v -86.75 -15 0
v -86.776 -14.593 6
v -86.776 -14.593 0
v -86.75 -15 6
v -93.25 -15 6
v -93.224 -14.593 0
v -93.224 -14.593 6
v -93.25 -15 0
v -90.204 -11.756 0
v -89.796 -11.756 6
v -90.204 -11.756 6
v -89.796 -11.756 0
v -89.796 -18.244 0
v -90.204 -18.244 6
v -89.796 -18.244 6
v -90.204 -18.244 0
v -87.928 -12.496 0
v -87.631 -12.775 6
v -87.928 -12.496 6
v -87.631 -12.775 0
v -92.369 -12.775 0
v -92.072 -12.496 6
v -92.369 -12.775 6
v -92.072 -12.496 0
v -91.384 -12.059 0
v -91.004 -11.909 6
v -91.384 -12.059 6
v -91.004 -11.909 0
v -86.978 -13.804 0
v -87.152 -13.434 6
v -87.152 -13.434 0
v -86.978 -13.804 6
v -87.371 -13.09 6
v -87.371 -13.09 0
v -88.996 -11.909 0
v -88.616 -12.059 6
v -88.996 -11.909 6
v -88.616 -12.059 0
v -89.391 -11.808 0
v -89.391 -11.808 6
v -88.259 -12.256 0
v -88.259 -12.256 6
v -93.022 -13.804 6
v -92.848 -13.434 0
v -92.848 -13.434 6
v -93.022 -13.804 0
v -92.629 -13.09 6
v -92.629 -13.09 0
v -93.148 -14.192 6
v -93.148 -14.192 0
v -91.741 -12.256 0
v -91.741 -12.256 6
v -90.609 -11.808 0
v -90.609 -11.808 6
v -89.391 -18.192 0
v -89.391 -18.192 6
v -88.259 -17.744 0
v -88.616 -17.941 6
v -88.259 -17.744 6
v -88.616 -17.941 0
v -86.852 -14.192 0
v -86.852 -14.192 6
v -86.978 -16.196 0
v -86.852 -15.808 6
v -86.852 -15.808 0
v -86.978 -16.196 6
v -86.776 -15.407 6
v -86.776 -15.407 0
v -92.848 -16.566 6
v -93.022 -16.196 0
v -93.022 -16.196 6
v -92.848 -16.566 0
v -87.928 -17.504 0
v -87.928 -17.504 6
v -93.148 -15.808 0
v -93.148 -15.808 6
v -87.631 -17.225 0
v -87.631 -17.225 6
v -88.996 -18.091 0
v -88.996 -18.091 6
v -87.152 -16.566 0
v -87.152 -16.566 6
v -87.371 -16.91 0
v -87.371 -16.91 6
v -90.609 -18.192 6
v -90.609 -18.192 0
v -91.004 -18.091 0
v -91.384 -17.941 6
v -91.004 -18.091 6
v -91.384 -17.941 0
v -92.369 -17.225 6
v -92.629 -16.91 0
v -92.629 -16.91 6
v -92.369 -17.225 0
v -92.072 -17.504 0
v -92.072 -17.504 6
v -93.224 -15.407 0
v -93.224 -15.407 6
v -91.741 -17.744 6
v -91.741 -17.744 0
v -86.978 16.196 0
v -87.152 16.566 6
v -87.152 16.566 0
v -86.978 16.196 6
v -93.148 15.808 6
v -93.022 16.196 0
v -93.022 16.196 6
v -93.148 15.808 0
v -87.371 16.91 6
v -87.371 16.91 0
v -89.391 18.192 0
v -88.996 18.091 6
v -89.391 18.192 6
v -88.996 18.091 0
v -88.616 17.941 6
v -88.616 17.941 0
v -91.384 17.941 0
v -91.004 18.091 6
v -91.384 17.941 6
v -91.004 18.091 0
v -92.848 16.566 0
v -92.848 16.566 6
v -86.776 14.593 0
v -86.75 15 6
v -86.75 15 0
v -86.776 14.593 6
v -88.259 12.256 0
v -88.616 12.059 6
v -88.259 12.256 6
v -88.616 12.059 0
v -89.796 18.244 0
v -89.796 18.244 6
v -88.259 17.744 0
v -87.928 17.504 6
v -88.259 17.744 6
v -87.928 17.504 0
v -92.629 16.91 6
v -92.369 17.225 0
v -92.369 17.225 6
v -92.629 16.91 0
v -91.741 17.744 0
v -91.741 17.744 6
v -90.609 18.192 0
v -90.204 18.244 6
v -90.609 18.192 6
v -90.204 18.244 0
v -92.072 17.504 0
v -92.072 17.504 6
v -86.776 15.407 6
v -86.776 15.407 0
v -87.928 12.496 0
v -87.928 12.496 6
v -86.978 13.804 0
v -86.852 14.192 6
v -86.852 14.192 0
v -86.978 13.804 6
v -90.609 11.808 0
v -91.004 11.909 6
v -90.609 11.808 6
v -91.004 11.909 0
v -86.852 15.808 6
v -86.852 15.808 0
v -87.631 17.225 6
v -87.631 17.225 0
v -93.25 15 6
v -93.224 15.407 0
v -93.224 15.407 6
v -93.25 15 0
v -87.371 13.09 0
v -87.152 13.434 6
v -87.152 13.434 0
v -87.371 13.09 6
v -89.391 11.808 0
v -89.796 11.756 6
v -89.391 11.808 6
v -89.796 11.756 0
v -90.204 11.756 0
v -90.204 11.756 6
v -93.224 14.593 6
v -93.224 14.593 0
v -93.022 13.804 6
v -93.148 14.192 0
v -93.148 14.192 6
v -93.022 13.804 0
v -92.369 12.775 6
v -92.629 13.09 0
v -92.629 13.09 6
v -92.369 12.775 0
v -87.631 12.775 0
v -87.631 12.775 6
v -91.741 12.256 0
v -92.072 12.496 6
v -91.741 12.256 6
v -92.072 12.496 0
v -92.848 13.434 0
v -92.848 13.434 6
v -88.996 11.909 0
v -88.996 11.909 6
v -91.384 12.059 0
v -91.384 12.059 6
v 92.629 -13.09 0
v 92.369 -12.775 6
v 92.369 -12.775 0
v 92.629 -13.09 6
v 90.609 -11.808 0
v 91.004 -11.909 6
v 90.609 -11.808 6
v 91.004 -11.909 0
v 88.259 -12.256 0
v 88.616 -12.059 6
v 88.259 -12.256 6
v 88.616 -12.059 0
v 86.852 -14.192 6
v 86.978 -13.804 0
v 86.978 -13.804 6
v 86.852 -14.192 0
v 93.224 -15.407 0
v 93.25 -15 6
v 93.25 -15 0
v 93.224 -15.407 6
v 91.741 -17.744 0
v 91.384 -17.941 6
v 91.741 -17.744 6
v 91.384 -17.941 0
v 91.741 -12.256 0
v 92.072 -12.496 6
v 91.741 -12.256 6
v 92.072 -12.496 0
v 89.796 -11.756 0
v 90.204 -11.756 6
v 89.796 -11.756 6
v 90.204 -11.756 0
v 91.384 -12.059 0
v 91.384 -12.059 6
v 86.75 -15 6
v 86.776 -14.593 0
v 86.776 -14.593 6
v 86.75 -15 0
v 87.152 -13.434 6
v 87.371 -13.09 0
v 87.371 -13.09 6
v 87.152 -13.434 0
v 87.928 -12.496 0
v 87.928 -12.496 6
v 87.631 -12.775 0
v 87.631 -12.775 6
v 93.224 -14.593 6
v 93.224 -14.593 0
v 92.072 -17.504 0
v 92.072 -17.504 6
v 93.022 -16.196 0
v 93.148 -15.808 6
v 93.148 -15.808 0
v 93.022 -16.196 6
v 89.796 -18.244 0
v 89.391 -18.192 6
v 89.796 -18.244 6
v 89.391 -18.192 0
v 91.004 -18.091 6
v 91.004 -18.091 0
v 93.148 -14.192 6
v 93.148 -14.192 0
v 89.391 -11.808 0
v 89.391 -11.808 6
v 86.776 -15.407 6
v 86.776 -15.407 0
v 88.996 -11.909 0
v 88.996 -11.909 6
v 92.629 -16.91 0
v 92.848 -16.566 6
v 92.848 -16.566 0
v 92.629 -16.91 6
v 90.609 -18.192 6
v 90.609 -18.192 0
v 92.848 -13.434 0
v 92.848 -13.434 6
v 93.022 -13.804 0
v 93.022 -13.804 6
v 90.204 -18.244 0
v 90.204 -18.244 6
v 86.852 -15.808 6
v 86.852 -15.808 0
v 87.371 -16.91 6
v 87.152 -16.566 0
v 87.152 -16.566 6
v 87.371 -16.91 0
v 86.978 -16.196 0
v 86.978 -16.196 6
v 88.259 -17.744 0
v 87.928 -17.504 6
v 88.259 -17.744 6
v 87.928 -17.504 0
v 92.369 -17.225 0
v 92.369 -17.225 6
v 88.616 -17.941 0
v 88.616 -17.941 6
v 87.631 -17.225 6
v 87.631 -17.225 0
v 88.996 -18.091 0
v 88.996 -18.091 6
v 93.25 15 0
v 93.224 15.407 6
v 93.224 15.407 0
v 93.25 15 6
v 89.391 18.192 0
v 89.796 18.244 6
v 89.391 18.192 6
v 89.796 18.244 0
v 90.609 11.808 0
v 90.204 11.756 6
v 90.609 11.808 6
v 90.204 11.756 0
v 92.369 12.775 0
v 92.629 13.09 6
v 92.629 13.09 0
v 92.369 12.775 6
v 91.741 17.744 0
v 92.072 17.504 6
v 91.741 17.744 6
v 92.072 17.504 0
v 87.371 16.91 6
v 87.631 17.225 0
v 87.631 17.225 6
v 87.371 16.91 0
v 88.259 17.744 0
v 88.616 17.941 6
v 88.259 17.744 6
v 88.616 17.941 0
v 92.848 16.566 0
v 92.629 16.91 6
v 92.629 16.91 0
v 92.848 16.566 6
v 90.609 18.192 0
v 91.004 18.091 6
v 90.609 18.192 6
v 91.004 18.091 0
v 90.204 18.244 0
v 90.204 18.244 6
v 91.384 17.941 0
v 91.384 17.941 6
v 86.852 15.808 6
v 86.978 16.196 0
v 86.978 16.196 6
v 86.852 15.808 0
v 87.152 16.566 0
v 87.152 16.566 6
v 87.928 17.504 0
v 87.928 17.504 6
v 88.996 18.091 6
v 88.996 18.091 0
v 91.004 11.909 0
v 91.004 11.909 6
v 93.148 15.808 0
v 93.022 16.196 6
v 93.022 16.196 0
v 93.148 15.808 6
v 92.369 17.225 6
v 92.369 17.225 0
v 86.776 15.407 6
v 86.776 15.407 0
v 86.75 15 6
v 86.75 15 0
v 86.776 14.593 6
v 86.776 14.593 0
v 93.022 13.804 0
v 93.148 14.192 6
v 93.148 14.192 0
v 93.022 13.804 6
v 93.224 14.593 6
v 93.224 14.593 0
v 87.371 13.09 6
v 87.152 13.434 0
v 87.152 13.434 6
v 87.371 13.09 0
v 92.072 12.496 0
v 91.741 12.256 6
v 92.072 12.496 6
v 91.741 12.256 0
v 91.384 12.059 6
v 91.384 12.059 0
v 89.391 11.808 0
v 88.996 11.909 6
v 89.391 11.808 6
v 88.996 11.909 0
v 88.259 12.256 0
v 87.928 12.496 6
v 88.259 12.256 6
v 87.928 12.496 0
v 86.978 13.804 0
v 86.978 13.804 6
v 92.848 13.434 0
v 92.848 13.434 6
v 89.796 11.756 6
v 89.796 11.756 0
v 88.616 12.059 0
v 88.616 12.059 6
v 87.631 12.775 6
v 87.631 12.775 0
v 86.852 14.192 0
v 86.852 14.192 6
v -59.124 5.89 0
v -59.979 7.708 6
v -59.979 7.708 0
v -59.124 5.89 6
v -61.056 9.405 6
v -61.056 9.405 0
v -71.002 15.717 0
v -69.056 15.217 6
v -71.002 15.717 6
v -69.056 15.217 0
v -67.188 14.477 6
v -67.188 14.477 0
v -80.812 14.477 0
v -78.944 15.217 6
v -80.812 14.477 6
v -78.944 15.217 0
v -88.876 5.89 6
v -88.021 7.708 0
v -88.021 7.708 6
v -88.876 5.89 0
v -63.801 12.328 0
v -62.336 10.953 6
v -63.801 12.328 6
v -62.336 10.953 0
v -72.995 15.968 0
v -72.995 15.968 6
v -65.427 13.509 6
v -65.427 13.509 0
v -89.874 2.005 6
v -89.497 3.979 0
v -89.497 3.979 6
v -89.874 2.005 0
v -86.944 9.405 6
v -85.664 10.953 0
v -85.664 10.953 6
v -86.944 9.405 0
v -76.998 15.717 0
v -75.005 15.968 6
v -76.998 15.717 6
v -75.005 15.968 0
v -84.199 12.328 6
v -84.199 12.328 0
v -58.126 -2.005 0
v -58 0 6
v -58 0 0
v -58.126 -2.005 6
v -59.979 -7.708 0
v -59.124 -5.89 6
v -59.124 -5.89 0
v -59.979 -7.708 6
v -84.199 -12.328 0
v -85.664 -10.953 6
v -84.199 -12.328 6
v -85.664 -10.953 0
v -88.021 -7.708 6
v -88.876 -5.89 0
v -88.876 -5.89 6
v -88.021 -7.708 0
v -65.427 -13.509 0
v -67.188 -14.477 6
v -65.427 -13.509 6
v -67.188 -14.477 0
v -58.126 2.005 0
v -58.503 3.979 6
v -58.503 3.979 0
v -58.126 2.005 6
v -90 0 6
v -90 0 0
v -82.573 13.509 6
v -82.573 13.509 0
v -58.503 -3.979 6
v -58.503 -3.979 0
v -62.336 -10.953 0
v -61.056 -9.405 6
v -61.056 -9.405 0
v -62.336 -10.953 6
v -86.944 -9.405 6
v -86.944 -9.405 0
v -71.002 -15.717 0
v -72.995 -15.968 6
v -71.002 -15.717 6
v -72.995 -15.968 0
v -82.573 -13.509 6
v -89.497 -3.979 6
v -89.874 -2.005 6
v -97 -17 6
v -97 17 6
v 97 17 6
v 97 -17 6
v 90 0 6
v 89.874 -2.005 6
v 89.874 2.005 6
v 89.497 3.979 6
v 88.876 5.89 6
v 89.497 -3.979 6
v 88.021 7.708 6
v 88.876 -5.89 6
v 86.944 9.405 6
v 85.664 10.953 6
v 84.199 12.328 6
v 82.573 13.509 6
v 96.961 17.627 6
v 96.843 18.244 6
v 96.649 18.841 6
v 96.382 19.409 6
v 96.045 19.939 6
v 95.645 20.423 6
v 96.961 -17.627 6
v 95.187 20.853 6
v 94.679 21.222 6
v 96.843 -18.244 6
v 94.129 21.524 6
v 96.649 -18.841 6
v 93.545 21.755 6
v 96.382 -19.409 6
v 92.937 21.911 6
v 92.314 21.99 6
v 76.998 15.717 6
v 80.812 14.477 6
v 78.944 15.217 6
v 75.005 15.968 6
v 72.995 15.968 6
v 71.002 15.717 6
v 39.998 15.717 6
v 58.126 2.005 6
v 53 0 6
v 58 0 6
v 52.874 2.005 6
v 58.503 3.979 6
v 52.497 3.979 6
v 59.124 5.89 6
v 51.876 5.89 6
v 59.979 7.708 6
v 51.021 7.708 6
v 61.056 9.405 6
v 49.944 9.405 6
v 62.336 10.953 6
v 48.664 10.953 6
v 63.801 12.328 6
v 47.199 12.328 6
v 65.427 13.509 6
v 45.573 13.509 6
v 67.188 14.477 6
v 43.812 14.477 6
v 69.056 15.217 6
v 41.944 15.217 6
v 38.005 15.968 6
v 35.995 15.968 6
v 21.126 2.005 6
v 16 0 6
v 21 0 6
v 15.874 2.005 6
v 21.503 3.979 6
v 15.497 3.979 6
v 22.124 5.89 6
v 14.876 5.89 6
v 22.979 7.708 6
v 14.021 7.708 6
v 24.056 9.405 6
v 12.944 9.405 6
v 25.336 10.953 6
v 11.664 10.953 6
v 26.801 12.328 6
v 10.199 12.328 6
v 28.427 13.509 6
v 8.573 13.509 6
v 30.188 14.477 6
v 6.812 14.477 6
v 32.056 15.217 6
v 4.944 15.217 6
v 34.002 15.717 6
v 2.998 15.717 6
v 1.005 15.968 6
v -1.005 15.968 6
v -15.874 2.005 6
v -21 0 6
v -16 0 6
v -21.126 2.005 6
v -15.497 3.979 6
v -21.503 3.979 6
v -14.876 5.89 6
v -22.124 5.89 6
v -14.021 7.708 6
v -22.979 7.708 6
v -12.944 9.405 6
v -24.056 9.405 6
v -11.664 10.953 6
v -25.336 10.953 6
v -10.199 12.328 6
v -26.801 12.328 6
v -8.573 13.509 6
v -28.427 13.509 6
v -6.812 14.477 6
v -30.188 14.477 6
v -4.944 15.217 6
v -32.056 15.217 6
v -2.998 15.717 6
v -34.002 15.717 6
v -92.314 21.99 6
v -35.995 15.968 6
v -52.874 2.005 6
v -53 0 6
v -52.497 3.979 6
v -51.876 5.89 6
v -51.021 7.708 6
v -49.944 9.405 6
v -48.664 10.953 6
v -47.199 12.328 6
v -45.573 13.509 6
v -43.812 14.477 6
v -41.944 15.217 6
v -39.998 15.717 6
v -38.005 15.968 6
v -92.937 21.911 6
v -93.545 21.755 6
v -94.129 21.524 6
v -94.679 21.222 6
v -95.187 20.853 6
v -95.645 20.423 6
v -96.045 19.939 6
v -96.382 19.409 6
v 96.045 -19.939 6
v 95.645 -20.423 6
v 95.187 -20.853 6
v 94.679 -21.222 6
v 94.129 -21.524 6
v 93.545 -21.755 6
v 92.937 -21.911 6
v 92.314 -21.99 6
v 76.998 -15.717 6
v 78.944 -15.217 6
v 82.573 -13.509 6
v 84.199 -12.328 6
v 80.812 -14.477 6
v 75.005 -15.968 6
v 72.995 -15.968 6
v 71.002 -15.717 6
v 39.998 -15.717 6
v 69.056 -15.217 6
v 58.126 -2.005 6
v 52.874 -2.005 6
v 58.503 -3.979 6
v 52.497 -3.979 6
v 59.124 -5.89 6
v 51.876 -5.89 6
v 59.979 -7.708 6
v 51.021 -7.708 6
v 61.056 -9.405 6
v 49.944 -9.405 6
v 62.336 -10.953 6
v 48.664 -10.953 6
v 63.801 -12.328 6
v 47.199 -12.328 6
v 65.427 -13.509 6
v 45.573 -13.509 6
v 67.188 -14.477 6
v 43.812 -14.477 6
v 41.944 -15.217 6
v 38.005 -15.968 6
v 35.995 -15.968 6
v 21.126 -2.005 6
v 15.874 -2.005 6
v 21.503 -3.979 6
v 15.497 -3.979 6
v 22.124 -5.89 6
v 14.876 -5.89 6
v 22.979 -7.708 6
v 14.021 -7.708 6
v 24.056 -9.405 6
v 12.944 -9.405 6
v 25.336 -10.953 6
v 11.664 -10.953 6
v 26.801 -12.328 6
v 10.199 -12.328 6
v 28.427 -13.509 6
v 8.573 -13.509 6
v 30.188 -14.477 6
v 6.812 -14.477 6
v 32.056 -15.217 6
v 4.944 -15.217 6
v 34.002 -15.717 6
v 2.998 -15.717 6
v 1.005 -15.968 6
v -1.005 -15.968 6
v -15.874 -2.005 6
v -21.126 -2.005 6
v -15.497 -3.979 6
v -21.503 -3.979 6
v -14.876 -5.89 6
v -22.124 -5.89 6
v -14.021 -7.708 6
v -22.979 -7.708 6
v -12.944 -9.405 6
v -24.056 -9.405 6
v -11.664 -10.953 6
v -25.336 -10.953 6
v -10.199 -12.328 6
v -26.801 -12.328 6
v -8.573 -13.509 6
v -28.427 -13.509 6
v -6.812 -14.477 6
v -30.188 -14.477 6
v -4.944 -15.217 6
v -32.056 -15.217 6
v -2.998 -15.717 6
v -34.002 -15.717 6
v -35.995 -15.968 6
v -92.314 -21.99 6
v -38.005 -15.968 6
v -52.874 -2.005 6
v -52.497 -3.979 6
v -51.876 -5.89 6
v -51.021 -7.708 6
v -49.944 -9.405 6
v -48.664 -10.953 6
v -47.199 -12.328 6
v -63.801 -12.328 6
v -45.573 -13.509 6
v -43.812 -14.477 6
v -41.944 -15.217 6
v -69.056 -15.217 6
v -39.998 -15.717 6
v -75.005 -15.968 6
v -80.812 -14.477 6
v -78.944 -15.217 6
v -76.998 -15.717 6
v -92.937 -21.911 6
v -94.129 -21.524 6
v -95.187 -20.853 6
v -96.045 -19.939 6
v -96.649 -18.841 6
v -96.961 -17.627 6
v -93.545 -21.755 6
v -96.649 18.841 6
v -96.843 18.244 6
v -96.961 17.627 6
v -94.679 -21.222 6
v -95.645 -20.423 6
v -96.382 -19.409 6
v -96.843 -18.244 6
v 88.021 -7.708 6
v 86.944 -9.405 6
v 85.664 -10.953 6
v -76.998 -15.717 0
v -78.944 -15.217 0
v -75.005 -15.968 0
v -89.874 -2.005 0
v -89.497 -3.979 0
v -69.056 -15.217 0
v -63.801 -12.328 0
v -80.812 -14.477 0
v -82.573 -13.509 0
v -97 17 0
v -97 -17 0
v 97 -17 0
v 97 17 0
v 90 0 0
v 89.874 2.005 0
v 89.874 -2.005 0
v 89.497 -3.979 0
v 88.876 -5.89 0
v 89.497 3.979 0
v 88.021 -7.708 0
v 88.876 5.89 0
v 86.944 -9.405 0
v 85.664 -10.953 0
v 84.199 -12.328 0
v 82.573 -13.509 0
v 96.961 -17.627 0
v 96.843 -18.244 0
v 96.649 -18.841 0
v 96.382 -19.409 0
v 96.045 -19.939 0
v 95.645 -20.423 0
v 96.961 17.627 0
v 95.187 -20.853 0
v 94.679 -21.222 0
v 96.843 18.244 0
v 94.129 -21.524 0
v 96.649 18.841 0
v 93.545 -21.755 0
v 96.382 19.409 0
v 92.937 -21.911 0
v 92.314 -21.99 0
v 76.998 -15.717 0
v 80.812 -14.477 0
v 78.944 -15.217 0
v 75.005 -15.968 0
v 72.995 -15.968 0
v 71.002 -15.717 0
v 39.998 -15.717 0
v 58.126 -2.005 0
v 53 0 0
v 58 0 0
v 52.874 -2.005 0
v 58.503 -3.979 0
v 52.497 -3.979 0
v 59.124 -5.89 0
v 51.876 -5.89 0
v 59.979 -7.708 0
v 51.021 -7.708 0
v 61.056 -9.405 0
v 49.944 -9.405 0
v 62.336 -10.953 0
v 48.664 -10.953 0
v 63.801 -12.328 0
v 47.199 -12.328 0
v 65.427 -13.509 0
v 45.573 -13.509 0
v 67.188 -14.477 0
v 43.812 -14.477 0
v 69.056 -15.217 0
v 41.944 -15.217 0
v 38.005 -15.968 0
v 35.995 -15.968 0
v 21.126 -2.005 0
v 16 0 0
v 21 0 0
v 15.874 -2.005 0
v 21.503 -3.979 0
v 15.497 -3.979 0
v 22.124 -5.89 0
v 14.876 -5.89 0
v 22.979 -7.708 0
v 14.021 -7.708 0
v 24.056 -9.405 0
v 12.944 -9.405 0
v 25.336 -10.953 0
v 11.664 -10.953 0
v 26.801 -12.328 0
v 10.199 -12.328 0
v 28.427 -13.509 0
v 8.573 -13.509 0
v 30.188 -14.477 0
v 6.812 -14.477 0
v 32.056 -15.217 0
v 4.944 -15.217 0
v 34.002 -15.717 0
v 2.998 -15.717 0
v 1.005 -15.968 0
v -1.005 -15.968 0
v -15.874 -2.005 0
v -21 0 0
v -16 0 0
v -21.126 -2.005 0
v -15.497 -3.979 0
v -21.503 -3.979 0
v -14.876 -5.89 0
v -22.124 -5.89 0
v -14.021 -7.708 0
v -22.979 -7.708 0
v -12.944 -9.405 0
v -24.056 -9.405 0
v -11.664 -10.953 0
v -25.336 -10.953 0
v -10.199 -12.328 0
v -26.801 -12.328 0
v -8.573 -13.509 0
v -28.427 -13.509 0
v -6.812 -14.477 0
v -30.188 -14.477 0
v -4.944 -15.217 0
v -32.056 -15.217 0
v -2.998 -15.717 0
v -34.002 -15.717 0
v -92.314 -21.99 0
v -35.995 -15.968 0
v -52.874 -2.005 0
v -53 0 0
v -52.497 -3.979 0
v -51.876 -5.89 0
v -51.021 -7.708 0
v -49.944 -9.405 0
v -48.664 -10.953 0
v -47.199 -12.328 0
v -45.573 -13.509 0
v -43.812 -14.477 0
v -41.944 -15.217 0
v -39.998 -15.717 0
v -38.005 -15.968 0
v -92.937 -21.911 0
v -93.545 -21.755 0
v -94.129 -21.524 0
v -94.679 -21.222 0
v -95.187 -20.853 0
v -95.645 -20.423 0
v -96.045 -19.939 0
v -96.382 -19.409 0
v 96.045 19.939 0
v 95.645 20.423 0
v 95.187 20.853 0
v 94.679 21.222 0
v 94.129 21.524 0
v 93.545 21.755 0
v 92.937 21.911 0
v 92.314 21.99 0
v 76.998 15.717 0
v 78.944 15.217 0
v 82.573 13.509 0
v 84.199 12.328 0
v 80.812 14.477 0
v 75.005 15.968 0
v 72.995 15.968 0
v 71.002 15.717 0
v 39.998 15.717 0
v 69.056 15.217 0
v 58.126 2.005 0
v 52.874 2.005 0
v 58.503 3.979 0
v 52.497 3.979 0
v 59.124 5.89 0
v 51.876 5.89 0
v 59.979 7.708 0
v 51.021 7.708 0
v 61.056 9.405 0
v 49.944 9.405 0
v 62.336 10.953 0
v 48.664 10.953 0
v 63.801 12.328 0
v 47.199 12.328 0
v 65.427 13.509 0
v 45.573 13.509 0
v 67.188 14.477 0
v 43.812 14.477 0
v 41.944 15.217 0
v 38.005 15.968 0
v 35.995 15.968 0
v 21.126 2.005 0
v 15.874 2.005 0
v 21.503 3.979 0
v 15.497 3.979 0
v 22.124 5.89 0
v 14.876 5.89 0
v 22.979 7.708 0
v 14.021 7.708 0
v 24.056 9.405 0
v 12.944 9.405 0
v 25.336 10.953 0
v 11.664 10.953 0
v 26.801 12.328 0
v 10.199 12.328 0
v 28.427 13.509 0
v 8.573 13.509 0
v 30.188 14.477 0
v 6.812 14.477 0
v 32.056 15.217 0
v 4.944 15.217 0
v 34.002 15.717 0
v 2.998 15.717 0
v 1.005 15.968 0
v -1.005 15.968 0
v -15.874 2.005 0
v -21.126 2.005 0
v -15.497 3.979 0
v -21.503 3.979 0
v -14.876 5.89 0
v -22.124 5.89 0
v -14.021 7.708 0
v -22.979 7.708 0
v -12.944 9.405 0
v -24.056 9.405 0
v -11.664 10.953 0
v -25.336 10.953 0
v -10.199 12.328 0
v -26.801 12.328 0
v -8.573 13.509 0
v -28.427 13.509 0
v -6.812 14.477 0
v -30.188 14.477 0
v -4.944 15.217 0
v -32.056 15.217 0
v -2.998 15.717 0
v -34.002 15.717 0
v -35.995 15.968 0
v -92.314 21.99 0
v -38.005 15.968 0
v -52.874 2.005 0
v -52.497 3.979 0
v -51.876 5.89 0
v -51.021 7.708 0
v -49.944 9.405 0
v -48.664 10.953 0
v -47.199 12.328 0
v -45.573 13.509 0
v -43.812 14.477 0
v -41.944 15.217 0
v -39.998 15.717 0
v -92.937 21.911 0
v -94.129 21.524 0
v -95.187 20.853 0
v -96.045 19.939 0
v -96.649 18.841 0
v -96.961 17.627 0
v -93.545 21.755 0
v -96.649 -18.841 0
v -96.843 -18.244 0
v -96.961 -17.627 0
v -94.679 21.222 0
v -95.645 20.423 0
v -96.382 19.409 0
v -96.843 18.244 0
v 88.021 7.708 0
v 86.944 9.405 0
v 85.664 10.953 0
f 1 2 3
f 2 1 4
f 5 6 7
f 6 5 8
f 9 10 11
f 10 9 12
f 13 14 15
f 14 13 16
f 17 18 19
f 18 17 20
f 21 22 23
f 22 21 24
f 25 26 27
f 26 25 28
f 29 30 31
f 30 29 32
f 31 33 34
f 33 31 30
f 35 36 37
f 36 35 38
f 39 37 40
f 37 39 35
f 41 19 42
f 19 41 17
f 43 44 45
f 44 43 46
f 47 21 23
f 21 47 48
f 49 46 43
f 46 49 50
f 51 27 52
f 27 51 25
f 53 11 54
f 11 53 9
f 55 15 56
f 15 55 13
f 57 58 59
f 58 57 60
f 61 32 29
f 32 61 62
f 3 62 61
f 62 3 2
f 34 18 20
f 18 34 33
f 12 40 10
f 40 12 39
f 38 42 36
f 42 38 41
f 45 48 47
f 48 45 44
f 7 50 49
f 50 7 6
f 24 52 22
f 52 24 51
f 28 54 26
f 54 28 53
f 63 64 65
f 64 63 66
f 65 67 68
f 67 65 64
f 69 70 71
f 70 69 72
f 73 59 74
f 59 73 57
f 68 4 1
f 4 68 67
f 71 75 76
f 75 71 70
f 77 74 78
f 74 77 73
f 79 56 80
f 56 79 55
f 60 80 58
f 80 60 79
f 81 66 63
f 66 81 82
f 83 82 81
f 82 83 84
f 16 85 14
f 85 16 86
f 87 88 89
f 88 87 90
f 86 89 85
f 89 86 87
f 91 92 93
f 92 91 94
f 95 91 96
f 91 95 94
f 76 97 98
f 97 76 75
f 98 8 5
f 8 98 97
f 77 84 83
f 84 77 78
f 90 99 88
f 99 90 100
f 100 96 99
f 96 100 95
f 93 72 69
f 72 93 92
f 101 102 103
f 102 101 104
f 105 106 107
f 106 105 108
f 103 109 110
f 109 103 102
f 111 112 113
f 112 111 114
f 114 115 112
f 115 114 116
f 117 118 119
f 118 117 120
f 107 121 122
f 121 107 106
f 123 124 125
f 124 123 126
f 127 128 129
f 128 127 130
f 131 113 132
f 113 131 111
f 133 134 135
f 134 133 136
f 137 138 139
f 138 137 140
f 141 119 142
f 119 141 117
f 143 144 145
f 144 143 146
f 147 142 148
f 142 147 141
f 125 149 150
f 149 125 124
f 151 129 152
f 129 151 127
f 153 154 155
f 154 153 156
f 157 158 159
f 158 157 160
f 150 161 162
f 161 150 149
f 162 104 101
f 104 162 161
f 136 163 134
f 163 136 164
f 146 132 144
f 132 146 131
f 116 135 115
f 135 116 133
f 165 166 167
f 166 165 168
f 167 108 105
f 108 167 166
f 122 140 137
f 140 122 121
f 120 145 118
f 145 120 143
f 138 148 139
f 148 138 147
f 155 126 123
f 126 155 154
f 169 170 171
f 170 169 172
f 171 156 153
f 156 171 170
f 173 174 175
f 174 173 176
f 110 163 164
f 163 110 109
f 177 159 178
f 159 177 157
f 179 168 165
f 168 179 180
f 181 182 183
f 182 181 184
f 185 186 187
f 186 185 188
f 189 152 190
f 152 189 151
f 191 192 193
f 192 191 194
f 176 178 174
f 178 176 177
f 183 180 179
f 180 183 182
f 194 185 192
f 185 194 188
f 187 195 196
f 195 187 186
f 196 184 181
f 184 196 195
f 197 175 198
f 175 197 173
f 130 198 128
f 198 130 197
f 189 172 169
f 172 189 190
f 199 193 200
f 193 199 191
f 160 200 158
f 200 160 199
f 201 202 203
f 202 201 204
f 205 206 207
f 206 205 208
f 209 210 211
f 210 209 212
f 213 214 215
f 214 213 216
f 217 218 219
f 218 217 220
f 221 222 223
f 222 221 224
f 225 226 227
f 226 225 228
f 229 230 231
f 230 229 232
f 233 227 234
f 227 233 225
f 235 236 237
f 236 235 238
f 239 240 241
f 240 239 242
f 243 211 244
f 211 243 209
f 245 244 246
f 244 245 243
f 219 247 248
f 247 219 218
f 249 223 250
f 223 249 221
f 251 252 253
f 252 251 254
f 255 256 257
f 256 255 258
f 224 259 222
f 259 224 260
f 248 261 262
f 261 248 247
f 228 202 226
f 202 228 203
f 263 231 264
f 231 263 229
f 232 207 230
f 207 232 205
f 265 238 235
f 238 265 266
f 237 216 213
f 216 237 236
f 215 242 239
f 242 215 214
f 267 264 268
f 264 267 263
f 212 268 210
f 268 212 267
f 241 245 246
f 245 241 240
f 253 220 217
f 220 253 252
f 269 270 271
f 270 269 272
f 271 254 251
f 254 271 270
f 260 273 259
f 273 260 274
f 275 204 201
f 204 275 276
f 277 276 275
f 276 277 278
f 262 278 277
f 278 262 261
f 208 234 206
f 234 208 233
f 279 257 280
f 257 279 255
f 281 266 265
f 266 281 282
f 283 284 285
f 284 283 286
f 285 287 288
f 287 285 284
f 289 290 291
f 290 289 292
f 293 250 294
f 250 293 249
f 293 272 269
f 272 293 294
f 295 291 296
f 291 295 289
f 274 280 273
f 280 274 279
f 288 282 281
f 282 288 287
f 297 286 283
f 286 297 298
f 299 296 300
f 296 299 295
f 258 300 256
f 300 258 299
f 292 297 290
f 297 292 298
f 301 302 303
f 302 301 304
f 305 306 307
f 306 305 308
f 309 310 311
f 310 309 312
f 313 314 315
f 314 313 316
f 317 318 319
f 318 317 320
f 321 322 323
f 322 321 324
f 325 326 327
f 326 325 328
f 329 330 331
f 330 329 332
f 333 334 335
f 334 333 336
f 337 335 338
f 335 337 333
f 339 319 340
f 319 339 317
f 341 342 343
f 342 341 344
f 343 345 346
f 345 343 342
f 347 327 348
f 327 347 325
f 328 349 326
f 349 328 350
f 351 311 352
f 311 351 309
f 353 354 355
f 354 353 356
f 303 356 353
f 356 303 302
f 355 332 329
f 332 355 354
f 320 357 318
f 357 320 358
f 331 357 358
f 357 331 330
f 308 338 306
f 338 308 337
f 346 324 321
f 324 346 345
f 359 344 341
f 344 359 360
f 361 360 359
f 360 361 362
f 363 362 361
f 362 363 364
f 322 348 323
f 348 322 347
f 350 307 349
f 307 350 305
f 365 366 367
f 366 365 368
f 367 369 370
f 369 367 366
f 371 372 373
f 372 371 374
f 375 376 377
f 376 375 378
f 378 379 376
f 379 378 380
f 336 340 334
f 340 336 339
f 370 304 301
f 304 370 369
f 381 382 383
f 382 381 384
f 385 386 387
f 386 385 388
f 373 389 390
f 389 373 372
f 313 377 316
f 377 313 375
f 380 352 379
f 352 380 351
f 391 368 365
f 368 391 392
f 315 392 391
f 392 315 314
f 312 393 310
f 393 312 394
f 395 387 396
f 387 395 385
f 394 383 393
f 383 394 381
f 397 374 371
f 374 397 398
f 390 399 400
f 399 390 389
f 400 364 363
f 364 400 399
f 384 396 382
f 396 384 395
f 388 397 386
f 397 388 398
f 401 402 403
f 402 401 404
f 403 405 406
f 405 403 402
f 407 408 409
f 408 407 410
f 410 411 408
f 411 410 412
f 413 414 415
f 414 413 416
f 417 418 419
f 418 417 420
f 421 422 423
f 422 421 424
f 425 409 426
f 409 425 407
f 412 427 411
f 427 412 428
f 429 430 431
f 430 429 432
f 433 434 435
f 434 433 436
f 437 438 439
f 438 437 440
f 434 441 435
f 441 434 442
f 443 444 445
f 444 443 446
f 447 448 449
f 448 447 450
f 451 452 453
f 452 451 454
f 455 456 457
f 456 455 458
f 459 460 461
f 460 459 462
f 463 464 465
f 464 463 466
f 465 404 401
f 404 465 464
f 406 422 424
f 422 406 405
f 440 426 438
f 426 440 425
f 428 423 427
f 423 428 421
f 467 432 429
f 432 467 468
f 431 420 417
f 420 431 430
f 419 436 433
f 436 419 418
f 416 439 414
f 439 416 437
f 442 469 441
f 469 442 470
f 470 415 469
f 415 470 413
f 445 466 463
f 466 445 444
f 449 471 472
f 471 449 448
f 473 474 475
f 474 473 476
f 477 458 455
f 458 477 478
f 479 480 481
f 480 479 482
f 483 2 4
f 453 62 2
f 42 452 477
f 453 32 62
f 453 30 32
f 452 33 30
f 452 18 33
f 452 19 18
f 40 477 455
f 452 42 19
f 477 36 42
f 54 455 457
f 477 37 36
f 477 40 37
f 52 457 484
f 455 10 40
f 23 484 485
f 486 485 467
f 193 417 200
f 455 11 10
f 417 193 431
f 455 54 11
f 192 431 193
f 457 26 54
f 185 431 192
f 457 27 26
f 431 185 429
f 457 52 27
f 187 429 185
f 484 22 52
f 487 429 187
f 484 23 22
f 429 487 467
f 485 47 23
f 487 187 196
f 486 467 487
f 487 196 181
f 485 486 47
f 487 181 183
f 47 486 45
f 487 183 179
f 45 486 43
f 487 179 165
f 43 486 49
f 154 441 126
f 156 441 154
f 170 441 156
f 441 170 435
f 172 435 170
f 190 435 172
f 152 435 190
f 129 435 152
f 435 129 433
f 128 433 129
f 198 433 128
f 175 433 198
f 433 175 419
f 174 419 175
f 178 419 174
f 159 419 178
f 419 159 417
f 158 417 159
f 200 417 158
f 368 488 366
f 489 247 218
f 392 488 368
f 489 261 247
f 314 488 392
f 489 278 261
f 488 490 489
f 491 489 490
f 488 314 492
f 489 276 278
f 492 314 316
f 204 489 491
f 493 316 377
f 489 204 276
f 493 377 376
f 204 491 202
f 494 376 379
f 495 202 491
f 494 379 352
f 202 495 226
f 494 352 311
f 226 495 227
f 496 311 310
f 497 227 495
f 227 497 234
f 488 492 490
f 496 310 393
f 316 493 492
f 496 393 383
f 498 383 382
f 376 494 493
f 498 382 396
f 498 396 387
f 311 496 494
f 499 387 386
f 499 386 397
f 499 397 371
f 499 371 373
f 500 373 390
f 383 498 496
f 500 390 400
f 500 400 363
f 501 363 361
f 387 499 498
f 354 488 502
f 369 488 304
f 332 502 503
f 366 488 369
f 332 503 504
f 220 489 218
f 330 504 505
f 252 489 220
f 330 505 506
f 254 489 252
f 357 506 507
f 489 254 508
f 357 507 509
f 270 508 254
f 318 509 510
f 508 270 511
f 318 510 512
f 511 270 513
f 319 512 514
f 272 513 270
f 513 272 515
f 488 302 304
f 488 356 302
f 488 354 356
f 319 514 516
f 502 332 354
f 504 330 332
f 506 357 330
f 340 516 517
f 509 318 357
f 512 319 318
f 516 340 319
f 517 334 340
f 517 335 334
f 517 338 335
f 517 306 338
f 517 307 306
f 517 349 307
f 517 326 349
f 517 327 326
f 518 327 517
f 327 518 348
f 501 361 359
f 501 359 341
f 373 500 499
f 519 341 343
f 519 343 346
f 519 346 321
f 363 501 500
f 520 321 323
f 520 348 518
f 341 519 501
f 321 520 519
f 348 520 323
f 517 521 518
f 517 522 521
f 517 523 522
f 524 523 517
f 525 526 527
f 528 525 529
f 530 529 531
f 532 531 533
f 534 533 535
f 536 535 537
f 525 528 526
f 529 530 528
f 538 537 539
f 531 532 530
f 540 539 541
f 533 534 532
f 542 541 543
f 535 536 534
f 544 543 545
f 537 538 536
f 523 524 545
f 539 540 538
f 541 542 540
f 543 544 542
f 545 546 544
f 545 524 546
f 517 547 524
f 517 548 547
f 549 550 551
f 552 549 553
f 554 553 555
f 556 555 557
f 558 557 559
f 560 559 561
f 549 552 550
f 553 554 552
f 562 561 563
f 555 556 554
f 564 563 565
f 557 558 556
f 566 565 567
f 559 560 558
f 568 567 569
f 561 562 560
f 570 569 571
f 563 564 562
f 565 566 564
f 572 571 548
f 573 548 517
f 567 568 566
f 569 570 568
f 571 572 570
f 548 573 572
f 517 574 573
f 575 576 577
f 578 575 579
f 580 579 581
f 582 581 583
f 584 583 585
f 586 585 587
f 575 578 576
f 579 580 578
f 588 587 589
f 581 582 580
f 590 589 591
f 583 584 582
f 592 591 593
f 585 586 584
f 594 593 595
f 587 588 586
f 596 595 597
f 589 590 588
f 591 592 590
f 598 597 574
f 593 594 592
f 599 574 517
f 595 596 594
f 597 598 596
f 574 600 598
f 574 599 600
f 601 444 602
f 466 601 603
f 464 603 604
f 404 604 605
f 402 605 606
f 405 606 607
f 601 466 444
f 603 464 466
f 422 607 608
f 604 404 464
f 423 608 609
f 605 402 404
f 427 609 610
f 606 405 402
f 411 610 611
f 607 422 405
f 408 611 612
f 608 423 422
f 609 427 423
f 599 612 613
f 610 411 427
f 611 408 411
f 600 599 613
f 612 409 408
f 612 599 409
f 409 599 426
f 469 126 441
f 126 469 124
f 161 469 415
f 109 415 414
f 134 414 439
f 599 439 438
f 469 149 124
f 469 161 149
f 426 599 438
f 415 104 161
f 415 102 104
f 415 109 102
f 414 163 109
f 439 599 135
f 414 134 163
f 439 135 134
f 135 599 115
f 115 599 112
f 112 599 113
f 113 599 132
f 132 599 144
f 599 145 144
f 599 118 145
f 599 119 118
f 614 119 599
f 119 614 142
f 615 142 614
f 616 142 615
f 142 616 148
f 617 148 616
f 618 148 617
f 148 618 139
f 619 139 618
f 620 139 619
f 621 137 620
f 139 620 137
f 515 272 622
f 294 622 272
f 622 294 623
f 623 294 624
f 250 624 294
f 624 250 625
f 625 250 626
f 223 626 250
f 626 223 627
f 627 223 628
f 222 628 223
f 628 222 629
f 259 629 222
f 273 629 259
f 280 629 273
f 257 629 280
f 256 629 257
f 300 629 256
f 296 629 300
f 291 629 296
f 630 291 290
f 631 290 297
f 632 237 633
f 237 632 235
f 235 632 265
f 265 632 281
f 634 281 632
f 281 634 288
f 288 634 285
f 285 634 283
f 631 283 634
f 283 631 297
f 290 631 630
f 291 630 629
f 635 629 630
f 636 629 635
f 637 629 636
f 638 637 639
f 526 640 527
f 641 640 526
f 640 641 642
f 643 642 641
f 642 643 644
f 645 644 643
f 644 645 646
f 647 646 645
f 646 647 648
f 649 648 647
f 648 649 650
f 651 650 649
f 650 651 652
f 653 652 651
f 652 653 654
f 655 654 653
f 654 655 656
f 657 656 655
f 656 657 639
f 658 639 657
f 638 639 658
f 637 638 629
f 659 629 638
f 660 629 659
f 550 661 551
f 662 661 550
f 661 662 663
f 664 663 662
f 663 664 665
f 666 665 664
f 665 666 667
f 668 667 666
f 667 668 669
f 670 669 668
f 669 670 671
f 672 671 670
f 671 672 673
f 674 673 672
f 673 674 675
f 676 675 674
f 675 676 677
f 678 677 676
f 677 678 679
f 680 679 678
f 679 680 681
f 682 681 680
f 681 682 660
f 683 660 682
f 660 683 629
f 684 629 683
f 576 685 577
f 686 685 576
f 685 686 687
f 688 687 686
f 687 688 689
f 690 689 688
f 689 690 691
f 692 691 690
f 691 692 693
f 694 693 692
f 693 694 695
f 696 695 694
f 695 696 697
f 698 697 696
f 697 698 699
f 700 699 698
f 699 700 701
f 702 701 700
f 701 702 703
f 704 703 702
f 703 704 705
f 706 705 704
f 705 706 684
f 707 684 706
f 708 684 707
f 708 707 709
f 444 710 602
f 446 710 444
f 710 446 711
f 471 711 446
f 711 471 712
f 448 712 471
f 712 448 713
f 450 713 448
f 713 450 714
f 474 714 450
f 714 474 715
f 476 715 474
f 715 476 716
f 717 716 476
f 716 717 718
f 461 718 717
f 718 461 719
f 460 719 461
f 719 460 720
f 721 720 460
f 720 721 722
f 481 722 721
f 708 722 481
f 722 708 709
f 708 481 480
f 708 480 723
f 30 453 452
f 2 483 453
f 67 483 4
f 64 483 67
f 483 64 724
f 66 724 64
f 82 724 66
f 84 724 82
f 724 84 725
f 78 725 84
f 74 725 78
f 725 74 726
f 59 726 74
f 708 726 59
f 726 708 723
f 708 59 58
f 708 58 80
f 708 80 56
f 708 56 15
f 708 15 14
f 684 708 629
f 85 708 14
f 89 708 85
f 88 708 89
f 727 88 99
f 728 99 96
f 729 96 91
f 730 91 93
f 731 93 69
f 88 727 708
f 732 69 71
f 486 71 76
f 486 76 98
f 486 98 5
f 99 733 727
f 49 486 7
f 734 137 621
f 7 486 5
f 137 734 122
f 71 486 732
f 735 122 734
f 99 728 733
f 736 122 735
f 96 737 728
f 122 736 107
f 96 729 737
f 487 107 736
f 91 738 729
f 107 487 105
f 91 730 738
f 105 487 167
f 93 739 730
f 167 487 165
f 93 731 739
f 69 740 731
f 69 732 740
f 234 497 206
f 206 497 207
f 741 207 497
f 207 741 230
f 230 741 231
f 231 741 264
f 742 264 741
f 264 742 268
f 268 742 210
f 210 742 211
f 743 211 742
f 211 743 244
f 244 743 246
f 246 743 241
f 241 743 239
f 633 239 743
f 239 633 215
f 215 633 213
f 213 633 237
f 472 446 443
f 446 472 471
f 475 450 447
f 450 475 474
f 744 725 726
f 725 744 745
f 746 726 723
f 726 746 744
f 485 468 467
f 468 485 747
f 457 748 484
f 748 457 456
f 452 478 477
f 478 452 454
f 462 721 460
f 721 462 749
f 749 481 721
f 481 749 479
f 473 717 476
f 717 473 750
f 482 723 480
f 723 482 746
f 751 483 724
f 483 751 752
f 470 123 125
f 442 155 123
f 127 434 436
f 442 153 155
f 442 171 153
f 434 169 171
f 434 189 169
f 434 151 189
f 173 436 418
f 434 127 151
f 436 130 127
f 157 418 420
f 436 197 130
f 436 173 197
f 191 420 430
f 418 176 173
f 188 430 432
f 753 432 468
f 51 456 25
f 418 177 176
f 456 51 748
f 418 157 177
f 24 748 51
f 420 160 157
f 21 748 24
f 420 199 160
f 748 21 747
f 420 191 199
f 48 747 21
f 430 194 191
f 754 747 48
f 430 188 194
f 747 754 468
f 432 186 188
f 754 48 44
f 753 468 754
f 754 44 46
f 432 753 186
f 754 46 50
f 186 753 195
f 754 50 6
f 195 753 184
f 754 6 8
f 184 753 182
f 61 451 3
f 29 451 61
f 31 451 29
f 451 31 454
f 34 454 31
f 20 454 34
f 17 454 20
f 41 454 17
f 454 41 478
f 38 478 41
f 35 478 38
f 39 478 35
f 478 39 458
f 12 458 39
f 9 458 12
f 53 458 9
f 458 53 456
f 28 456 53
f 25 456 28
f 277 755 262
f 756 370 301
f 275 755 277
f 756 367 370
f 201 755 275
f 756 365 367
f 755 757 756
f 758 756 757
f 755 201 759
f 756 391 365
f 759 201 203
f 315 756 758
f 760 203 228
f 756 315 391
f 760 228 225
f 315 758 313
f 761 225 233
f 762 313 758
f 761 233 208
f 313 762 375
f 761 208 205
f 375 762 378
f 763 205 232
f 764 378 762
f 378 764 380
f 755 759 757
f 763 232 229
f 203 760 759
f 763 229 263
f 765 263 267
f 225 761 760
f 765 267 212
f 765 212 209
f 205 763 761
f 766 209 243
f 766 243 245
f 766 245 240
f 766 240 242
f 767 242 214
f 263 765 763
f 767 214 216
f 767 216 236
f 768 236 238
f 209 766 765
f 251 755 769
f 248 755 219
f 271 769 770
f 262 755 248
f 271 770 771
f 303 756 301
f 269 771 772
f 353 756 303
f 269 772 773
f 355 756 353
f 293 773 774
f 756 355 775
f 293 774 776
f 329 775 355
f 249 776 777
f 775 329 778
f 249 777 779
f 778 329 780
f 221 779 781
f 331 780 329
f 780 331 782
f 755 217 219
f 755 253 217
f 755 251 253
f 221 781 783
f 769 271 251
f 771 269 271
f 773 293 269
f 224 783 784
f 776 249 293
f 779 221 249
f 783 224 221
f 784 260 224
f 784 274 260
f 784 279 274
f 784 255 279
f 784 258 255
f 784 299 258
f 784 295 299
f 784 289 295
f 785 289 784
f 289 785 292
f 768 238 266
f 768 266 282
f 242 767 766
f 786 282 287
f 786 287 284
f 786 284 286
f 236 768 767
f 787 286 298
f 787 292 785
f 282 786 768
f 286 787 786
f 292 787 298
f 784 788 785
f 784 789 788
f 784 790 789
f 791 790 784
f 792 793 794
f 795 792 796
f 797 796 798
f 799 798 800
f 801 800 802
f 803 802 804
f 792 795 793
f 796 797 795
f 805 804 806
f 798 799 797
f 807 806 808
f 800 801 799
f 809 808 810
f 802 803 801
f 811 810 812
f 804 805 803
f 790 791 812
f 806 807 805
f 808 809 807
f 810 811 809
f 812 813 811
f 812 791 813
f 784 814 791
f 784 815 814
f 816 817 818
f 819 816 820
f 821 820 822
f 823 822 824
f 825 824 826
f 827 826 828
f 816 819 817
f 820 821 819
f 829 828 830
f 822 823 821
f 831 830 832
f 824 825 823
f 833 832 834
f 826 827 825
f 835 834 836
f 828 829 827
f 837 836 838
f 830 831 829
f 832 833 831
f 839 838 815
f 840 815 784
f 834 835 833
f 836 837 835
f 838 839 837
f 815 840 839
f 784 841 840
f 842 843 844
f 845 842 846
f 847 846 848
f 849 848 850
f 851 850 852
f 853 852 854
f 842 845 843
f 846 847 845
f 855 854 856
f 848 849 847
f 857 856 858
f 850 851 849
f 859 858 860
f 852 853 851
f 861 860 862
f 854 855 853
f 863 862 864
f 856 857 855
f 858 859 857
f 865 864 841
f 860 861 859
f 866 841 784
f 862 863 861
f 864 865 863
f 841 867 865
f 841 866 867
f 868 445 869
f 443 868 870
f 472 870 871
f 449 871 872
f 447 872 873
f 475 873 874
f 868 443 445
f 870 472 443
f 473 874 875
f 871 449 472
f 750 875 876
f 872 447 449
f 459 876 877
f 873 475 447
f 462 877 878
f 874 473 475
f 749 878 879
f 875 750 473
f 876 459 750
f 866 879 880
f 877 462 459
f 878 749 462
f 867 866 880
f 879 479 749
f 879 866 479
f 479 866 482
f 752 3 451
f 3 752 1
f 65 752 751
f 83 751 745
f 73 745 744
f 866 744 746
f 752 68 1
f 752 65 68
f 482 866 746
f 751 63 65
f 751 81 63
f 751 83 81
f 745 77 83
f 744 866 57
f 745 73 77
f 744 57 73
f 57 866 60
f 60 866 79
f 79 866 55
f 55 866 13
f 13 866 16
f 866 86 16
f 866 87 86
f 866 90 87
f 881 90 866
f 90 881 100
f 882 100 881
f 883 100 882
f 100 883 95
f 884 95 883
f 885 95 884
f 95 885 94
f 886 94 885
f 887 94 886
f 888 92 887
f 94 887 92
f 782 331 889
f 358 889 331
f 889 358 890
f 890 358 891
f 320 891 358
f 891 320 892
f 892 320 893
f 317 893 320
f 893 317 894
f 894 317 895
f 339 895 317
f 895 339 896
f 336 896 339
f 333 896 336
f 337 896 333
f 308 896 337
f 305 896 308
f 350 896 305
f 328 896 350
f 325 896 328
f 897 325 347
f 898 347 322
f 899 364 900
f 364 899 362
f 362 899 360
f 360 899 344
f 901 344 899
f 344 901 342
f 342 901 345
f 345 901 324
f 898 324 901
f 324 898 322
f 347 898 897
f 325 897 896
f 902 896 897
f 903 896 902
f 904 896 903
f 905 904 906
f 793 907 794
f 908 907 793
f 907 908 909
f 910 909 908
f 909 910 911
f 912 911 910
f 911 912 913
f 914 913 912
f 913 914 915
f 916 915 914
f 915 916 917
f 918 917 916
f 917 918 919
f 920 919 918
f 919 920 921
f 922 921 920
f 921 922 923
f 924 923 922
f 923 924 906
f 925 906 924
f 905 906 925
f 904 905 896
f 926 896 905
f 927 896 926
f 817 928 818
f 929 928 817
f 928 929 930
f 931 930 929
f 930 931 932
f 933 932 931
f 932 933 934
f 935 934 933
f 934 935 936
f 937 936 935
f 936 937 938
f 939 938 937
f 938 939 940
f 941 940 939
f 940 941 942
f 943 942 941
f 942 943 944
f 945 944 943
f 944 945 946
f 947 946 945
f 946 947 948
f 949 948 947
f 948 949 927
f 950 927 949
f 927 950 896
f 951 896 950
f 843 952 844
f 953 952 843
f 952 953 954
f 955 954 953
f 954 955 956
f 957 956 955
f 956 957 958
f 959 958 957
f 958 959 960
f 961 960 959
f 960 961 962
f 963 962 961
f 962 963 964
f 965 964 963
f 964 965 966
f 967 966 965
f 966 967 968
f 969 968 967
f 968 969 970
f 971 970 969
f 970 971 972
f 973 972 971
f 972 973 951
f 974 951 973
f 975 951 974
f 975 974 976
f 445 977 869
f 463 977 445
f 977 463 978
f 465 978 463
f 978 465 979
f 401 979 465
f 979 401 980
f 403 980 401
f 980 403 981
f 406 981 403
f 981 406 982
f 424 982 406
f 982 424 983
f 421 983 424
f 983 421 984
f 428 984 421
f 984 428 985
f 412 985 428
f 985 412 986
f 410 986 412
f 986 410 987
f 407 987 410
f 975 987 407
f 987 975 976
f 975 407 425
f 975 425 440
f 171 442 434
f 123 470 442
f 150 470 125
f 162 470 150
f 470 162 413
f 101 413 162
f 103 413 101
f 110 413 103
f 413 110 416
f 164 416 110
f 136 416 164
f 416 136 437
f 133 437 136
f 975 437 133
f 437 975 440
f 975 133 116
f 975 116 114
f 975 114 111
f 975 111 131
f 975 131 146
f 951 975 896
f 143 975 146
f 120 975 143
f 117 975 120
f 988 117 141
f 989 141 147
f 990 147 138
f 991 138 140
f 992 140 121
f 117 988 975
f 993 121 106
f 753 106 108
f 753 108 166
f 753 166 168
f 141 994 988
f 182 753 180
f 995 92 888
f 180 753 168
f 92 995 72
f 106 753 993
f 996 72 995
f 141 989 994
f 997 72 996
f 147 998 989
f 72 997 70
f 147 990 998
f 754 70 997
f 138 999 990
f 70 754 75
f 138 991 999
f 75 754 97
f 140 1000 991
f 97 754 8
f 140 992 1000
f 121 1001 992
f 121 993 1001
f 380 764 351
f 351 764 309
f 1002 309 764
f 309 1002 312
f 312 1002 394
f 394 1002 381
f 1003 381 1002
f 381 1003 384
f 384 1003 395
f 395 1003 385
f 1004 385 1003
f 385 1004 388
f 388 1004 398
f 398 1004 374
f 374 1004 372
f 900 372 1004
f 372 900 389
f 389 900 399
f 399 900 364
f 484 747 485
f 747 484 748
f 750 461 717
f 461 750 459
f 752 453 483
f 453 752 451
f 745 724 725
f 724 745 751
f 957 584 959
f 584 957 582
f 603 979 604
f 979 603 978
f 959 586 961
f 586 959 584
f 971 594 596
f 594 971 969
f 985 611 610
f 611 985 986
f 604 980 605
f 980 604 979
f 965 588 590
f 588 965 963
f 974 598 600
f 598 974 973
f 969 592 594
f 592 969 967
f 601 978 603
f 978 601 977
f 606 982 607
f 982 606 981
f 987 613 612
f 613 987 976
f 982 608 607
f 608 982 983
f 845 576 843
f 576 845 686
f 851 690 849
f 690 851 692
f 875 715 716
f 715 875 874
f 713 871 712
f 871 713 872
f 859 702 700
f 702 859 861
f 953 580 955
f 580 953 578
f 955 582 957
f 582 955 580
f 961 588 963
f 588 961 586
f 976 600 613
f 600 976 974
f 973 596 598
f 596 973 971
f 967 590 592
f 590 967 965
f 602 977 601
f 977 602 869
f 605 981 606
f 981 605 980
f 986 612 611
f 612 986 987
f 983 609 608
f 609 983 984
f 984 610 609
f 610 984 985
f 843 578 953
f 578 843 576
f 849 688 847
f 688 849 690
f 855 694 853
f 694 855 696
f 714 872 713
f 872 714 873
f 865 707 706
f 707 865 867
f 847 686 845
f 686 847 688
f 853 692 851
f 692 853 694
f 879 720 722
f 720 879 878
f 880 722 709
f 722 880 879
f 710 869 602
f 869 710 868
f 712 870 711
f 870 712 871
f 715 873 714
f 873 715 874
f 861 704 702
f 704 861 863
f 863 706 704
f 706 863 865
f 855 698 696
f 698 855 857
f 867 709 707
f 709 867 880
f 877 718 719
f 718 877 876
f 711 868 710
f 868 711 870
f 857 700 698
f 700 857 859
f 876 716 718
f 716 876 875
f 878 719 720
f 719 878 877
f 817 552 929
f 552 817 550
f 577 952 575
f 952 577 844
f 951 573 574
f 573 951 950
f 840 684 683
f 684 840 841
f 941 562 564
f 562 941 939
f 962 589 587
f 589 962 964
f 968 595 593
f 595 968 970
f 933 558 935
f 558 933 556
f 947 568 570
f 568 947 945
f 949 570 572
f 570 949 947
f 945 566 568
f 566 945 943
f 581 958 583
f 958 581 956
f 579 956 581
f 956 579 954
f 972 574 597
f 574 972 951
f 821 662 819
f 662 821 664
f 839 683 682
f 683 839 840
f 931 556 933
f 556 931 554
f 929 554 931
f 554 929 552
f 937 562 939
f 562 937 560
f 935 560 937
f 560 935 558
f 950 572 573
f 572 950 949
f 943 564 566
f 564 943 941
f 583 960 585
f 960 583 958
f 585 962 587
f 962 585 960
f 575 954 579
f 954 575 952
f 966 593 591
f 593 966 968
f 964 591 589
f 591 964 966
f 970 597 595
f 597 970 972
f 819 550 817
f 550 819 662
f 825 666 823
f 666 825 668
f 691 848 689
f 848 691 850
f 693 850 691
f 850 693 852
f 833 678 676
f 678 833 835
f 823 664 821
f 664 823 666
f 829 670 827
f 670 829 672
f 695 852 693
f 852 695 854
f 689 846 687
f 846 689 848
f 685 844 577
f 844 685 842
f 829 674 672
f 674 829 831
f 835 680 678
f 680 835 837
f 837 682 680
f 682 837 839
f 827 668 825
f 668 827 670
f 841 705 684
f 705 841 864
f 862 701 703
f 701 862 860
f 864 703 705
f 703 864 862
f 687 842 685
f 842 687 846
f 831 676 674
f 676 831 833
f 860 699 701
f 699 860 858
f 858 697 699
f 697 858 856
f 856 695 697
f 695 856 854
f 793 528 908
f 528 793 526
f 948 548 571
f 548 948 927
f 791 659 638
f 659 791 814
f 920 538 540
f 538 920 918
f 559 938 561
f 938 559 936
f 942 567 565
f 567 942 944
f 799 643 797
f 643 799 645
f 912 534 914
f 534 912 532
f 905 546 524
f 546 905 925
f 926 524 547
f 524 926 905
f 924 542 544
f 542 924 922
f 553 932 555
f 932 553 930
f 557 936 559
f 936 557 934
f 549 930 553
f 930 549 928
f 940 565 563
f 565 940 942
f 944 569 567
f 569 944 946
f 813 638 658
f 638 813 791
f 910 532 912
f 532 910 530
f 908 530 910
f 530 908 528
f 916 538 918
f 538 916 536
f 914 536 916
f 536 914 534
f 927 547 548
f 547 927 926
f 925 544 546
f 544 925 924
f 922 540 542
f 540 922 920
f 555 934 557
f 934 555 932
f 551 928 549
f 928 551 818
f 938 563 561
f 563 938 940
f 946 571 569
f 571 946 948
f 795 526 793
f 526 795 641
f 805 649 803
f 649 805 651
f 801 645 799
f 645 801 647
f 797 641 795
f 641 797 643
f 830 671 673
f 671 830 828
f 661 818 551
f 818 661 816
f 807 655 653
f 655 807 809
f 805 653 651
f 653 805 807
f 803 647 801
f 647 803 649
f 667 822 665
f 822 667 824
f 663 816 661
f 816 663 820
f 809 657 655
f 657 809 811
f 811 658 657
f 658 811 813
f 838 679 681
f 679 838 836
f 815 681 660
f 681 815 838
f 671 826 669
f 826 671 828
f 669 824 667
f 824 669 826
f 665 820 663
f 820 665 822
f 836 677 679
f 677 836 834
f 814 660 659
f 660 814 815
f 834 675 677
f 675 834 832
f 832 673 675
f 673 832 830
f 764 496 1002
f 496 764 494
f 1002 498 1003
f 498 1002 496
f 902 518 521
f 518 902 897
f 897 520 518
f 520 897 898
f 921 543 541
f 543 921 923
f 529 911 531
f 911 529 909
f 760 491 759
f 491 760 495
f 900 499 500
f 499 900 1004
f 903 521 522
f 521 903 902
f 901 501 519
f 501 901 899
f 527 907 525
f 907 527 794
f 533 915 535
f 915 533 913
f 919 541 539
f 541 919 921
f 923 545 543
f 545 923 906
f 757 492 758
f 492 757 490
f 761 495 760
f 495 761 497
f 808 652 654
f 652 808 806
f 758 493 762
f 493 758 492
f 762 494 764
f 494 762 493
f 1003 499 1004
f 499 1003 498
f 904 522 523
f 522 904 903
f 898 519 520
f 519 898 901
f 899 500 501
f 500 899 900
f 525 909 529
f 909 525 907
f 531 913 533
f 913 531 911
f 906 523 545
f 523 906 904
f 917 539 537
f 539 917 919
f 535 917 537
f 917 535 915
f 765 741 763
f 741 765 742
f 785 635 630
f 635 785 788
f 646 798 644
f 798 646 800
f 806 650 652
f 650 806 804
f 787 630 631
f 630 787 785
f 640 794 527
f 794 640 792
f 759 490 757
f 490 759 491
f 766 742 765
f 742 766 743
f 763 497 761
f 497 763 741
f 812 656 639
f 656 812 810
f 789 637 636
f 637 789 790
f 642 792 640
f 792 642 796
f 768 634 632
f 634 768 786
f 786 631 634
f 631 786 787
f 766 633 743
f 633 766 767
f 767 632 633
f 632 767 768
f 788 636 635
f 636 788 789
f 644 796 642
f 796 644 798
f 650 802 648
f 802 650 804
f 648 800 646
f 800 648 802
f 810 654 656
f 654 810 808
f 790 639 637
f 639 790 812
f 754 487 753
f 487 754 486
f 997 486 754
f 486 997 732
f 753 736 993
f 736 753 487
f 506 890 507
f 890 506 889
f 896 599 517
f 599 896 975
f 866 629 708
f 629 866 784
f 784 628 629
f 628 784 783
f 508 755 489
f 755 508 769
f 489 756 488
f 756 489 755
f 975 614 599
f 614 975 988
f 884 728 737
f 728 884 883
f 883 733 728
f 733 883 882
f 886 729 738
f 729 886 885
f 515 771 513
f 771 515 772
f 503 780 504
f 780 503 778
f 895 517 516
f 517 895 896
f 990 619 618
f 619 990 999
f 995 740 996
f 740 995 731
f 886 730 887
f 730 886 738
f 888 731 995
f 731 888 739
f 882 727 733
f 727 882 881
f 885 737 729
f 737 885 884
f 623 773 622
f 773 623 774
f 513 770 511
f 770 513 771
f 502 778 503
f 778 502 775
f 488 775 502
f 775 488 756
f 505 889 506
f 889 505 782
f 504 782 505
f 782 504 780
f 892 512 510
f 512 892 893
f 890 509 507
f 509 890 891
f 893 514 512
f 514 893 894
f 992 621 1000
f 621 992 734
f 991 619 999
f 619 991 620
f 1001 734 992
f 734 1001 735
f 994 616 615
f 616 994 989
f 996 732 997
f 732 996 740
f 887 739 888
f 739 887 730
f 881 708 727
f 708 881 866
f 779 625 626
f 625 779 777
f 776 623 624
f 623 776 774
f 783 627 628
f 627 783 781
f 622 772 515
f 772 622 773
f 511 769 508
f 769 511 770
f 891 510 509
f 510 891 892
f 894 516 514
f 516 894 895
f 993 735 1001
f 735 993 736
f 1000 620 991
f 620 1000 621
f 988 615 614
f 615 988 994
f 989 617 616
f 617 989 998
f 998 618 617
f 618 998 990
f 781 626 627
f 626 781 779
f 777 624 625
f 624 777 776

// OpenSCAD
$fn = 50;


difference() {
	union() {
		hull() {
			translate(v = [-92.0000000000, 17.0000000000, 0]) {
				cylinder(h = 6, r = 5);
			}
			translate(v = [92.0000000000, 17.0000000000, 0]) {
				cylinder(h = 6, r = 5);
			}
			translate(v = [-92.0000000000, -17.0000000000, 0]) {
				cylinder(h = 6, r = 5);
			}
			translate(v = [92.0000000000, -17.0000000000, 0]) {
				cylinder(h = 6, r = 5);
			}
		}
	}
	union() {
		#translate(v = [-90.0000000000, -15.0000000000, -100.0000000000]) {
			cylinder(h = 200, r = 3.2500000000);
		}
		#translate(v = [-90.0000000000, 15.0000000000, -100.0000000000]) {
			cylinder(h = 200, r = 3.2500000000);
		}
		#translate(v = [90.0000000000, -15.0000000000, -100.0000000000]) {
			cylinder(h = 200, r = 3.2500000000);
		}
		#translate(v = [90.0000000000, 15.0000000000, -100.0000000000]) {
			cylinder(h = 200, r = 3.2500000000);
		}
		#translate(v = [-74.0000000000, 0, 0]) {
			cylinder(h = 6, r = 16.0000000000);
		}
		#translate(v = [-37.0000000000, 0, 0]) {
			cylinder(h = 6, r = 16.0000000000);
		}
		#cylinder(h = 6, r = 16.0000000000);
		#translate(v = [37.0000000000, 0, 0]) {
			cylinder(h = 6, r = 16.0000000000);
		}
		#translate(v = [74.0000000000, 0, 0]) {
			cylinder(h = 6, r = 16.0000000000);
		}
	}
}
